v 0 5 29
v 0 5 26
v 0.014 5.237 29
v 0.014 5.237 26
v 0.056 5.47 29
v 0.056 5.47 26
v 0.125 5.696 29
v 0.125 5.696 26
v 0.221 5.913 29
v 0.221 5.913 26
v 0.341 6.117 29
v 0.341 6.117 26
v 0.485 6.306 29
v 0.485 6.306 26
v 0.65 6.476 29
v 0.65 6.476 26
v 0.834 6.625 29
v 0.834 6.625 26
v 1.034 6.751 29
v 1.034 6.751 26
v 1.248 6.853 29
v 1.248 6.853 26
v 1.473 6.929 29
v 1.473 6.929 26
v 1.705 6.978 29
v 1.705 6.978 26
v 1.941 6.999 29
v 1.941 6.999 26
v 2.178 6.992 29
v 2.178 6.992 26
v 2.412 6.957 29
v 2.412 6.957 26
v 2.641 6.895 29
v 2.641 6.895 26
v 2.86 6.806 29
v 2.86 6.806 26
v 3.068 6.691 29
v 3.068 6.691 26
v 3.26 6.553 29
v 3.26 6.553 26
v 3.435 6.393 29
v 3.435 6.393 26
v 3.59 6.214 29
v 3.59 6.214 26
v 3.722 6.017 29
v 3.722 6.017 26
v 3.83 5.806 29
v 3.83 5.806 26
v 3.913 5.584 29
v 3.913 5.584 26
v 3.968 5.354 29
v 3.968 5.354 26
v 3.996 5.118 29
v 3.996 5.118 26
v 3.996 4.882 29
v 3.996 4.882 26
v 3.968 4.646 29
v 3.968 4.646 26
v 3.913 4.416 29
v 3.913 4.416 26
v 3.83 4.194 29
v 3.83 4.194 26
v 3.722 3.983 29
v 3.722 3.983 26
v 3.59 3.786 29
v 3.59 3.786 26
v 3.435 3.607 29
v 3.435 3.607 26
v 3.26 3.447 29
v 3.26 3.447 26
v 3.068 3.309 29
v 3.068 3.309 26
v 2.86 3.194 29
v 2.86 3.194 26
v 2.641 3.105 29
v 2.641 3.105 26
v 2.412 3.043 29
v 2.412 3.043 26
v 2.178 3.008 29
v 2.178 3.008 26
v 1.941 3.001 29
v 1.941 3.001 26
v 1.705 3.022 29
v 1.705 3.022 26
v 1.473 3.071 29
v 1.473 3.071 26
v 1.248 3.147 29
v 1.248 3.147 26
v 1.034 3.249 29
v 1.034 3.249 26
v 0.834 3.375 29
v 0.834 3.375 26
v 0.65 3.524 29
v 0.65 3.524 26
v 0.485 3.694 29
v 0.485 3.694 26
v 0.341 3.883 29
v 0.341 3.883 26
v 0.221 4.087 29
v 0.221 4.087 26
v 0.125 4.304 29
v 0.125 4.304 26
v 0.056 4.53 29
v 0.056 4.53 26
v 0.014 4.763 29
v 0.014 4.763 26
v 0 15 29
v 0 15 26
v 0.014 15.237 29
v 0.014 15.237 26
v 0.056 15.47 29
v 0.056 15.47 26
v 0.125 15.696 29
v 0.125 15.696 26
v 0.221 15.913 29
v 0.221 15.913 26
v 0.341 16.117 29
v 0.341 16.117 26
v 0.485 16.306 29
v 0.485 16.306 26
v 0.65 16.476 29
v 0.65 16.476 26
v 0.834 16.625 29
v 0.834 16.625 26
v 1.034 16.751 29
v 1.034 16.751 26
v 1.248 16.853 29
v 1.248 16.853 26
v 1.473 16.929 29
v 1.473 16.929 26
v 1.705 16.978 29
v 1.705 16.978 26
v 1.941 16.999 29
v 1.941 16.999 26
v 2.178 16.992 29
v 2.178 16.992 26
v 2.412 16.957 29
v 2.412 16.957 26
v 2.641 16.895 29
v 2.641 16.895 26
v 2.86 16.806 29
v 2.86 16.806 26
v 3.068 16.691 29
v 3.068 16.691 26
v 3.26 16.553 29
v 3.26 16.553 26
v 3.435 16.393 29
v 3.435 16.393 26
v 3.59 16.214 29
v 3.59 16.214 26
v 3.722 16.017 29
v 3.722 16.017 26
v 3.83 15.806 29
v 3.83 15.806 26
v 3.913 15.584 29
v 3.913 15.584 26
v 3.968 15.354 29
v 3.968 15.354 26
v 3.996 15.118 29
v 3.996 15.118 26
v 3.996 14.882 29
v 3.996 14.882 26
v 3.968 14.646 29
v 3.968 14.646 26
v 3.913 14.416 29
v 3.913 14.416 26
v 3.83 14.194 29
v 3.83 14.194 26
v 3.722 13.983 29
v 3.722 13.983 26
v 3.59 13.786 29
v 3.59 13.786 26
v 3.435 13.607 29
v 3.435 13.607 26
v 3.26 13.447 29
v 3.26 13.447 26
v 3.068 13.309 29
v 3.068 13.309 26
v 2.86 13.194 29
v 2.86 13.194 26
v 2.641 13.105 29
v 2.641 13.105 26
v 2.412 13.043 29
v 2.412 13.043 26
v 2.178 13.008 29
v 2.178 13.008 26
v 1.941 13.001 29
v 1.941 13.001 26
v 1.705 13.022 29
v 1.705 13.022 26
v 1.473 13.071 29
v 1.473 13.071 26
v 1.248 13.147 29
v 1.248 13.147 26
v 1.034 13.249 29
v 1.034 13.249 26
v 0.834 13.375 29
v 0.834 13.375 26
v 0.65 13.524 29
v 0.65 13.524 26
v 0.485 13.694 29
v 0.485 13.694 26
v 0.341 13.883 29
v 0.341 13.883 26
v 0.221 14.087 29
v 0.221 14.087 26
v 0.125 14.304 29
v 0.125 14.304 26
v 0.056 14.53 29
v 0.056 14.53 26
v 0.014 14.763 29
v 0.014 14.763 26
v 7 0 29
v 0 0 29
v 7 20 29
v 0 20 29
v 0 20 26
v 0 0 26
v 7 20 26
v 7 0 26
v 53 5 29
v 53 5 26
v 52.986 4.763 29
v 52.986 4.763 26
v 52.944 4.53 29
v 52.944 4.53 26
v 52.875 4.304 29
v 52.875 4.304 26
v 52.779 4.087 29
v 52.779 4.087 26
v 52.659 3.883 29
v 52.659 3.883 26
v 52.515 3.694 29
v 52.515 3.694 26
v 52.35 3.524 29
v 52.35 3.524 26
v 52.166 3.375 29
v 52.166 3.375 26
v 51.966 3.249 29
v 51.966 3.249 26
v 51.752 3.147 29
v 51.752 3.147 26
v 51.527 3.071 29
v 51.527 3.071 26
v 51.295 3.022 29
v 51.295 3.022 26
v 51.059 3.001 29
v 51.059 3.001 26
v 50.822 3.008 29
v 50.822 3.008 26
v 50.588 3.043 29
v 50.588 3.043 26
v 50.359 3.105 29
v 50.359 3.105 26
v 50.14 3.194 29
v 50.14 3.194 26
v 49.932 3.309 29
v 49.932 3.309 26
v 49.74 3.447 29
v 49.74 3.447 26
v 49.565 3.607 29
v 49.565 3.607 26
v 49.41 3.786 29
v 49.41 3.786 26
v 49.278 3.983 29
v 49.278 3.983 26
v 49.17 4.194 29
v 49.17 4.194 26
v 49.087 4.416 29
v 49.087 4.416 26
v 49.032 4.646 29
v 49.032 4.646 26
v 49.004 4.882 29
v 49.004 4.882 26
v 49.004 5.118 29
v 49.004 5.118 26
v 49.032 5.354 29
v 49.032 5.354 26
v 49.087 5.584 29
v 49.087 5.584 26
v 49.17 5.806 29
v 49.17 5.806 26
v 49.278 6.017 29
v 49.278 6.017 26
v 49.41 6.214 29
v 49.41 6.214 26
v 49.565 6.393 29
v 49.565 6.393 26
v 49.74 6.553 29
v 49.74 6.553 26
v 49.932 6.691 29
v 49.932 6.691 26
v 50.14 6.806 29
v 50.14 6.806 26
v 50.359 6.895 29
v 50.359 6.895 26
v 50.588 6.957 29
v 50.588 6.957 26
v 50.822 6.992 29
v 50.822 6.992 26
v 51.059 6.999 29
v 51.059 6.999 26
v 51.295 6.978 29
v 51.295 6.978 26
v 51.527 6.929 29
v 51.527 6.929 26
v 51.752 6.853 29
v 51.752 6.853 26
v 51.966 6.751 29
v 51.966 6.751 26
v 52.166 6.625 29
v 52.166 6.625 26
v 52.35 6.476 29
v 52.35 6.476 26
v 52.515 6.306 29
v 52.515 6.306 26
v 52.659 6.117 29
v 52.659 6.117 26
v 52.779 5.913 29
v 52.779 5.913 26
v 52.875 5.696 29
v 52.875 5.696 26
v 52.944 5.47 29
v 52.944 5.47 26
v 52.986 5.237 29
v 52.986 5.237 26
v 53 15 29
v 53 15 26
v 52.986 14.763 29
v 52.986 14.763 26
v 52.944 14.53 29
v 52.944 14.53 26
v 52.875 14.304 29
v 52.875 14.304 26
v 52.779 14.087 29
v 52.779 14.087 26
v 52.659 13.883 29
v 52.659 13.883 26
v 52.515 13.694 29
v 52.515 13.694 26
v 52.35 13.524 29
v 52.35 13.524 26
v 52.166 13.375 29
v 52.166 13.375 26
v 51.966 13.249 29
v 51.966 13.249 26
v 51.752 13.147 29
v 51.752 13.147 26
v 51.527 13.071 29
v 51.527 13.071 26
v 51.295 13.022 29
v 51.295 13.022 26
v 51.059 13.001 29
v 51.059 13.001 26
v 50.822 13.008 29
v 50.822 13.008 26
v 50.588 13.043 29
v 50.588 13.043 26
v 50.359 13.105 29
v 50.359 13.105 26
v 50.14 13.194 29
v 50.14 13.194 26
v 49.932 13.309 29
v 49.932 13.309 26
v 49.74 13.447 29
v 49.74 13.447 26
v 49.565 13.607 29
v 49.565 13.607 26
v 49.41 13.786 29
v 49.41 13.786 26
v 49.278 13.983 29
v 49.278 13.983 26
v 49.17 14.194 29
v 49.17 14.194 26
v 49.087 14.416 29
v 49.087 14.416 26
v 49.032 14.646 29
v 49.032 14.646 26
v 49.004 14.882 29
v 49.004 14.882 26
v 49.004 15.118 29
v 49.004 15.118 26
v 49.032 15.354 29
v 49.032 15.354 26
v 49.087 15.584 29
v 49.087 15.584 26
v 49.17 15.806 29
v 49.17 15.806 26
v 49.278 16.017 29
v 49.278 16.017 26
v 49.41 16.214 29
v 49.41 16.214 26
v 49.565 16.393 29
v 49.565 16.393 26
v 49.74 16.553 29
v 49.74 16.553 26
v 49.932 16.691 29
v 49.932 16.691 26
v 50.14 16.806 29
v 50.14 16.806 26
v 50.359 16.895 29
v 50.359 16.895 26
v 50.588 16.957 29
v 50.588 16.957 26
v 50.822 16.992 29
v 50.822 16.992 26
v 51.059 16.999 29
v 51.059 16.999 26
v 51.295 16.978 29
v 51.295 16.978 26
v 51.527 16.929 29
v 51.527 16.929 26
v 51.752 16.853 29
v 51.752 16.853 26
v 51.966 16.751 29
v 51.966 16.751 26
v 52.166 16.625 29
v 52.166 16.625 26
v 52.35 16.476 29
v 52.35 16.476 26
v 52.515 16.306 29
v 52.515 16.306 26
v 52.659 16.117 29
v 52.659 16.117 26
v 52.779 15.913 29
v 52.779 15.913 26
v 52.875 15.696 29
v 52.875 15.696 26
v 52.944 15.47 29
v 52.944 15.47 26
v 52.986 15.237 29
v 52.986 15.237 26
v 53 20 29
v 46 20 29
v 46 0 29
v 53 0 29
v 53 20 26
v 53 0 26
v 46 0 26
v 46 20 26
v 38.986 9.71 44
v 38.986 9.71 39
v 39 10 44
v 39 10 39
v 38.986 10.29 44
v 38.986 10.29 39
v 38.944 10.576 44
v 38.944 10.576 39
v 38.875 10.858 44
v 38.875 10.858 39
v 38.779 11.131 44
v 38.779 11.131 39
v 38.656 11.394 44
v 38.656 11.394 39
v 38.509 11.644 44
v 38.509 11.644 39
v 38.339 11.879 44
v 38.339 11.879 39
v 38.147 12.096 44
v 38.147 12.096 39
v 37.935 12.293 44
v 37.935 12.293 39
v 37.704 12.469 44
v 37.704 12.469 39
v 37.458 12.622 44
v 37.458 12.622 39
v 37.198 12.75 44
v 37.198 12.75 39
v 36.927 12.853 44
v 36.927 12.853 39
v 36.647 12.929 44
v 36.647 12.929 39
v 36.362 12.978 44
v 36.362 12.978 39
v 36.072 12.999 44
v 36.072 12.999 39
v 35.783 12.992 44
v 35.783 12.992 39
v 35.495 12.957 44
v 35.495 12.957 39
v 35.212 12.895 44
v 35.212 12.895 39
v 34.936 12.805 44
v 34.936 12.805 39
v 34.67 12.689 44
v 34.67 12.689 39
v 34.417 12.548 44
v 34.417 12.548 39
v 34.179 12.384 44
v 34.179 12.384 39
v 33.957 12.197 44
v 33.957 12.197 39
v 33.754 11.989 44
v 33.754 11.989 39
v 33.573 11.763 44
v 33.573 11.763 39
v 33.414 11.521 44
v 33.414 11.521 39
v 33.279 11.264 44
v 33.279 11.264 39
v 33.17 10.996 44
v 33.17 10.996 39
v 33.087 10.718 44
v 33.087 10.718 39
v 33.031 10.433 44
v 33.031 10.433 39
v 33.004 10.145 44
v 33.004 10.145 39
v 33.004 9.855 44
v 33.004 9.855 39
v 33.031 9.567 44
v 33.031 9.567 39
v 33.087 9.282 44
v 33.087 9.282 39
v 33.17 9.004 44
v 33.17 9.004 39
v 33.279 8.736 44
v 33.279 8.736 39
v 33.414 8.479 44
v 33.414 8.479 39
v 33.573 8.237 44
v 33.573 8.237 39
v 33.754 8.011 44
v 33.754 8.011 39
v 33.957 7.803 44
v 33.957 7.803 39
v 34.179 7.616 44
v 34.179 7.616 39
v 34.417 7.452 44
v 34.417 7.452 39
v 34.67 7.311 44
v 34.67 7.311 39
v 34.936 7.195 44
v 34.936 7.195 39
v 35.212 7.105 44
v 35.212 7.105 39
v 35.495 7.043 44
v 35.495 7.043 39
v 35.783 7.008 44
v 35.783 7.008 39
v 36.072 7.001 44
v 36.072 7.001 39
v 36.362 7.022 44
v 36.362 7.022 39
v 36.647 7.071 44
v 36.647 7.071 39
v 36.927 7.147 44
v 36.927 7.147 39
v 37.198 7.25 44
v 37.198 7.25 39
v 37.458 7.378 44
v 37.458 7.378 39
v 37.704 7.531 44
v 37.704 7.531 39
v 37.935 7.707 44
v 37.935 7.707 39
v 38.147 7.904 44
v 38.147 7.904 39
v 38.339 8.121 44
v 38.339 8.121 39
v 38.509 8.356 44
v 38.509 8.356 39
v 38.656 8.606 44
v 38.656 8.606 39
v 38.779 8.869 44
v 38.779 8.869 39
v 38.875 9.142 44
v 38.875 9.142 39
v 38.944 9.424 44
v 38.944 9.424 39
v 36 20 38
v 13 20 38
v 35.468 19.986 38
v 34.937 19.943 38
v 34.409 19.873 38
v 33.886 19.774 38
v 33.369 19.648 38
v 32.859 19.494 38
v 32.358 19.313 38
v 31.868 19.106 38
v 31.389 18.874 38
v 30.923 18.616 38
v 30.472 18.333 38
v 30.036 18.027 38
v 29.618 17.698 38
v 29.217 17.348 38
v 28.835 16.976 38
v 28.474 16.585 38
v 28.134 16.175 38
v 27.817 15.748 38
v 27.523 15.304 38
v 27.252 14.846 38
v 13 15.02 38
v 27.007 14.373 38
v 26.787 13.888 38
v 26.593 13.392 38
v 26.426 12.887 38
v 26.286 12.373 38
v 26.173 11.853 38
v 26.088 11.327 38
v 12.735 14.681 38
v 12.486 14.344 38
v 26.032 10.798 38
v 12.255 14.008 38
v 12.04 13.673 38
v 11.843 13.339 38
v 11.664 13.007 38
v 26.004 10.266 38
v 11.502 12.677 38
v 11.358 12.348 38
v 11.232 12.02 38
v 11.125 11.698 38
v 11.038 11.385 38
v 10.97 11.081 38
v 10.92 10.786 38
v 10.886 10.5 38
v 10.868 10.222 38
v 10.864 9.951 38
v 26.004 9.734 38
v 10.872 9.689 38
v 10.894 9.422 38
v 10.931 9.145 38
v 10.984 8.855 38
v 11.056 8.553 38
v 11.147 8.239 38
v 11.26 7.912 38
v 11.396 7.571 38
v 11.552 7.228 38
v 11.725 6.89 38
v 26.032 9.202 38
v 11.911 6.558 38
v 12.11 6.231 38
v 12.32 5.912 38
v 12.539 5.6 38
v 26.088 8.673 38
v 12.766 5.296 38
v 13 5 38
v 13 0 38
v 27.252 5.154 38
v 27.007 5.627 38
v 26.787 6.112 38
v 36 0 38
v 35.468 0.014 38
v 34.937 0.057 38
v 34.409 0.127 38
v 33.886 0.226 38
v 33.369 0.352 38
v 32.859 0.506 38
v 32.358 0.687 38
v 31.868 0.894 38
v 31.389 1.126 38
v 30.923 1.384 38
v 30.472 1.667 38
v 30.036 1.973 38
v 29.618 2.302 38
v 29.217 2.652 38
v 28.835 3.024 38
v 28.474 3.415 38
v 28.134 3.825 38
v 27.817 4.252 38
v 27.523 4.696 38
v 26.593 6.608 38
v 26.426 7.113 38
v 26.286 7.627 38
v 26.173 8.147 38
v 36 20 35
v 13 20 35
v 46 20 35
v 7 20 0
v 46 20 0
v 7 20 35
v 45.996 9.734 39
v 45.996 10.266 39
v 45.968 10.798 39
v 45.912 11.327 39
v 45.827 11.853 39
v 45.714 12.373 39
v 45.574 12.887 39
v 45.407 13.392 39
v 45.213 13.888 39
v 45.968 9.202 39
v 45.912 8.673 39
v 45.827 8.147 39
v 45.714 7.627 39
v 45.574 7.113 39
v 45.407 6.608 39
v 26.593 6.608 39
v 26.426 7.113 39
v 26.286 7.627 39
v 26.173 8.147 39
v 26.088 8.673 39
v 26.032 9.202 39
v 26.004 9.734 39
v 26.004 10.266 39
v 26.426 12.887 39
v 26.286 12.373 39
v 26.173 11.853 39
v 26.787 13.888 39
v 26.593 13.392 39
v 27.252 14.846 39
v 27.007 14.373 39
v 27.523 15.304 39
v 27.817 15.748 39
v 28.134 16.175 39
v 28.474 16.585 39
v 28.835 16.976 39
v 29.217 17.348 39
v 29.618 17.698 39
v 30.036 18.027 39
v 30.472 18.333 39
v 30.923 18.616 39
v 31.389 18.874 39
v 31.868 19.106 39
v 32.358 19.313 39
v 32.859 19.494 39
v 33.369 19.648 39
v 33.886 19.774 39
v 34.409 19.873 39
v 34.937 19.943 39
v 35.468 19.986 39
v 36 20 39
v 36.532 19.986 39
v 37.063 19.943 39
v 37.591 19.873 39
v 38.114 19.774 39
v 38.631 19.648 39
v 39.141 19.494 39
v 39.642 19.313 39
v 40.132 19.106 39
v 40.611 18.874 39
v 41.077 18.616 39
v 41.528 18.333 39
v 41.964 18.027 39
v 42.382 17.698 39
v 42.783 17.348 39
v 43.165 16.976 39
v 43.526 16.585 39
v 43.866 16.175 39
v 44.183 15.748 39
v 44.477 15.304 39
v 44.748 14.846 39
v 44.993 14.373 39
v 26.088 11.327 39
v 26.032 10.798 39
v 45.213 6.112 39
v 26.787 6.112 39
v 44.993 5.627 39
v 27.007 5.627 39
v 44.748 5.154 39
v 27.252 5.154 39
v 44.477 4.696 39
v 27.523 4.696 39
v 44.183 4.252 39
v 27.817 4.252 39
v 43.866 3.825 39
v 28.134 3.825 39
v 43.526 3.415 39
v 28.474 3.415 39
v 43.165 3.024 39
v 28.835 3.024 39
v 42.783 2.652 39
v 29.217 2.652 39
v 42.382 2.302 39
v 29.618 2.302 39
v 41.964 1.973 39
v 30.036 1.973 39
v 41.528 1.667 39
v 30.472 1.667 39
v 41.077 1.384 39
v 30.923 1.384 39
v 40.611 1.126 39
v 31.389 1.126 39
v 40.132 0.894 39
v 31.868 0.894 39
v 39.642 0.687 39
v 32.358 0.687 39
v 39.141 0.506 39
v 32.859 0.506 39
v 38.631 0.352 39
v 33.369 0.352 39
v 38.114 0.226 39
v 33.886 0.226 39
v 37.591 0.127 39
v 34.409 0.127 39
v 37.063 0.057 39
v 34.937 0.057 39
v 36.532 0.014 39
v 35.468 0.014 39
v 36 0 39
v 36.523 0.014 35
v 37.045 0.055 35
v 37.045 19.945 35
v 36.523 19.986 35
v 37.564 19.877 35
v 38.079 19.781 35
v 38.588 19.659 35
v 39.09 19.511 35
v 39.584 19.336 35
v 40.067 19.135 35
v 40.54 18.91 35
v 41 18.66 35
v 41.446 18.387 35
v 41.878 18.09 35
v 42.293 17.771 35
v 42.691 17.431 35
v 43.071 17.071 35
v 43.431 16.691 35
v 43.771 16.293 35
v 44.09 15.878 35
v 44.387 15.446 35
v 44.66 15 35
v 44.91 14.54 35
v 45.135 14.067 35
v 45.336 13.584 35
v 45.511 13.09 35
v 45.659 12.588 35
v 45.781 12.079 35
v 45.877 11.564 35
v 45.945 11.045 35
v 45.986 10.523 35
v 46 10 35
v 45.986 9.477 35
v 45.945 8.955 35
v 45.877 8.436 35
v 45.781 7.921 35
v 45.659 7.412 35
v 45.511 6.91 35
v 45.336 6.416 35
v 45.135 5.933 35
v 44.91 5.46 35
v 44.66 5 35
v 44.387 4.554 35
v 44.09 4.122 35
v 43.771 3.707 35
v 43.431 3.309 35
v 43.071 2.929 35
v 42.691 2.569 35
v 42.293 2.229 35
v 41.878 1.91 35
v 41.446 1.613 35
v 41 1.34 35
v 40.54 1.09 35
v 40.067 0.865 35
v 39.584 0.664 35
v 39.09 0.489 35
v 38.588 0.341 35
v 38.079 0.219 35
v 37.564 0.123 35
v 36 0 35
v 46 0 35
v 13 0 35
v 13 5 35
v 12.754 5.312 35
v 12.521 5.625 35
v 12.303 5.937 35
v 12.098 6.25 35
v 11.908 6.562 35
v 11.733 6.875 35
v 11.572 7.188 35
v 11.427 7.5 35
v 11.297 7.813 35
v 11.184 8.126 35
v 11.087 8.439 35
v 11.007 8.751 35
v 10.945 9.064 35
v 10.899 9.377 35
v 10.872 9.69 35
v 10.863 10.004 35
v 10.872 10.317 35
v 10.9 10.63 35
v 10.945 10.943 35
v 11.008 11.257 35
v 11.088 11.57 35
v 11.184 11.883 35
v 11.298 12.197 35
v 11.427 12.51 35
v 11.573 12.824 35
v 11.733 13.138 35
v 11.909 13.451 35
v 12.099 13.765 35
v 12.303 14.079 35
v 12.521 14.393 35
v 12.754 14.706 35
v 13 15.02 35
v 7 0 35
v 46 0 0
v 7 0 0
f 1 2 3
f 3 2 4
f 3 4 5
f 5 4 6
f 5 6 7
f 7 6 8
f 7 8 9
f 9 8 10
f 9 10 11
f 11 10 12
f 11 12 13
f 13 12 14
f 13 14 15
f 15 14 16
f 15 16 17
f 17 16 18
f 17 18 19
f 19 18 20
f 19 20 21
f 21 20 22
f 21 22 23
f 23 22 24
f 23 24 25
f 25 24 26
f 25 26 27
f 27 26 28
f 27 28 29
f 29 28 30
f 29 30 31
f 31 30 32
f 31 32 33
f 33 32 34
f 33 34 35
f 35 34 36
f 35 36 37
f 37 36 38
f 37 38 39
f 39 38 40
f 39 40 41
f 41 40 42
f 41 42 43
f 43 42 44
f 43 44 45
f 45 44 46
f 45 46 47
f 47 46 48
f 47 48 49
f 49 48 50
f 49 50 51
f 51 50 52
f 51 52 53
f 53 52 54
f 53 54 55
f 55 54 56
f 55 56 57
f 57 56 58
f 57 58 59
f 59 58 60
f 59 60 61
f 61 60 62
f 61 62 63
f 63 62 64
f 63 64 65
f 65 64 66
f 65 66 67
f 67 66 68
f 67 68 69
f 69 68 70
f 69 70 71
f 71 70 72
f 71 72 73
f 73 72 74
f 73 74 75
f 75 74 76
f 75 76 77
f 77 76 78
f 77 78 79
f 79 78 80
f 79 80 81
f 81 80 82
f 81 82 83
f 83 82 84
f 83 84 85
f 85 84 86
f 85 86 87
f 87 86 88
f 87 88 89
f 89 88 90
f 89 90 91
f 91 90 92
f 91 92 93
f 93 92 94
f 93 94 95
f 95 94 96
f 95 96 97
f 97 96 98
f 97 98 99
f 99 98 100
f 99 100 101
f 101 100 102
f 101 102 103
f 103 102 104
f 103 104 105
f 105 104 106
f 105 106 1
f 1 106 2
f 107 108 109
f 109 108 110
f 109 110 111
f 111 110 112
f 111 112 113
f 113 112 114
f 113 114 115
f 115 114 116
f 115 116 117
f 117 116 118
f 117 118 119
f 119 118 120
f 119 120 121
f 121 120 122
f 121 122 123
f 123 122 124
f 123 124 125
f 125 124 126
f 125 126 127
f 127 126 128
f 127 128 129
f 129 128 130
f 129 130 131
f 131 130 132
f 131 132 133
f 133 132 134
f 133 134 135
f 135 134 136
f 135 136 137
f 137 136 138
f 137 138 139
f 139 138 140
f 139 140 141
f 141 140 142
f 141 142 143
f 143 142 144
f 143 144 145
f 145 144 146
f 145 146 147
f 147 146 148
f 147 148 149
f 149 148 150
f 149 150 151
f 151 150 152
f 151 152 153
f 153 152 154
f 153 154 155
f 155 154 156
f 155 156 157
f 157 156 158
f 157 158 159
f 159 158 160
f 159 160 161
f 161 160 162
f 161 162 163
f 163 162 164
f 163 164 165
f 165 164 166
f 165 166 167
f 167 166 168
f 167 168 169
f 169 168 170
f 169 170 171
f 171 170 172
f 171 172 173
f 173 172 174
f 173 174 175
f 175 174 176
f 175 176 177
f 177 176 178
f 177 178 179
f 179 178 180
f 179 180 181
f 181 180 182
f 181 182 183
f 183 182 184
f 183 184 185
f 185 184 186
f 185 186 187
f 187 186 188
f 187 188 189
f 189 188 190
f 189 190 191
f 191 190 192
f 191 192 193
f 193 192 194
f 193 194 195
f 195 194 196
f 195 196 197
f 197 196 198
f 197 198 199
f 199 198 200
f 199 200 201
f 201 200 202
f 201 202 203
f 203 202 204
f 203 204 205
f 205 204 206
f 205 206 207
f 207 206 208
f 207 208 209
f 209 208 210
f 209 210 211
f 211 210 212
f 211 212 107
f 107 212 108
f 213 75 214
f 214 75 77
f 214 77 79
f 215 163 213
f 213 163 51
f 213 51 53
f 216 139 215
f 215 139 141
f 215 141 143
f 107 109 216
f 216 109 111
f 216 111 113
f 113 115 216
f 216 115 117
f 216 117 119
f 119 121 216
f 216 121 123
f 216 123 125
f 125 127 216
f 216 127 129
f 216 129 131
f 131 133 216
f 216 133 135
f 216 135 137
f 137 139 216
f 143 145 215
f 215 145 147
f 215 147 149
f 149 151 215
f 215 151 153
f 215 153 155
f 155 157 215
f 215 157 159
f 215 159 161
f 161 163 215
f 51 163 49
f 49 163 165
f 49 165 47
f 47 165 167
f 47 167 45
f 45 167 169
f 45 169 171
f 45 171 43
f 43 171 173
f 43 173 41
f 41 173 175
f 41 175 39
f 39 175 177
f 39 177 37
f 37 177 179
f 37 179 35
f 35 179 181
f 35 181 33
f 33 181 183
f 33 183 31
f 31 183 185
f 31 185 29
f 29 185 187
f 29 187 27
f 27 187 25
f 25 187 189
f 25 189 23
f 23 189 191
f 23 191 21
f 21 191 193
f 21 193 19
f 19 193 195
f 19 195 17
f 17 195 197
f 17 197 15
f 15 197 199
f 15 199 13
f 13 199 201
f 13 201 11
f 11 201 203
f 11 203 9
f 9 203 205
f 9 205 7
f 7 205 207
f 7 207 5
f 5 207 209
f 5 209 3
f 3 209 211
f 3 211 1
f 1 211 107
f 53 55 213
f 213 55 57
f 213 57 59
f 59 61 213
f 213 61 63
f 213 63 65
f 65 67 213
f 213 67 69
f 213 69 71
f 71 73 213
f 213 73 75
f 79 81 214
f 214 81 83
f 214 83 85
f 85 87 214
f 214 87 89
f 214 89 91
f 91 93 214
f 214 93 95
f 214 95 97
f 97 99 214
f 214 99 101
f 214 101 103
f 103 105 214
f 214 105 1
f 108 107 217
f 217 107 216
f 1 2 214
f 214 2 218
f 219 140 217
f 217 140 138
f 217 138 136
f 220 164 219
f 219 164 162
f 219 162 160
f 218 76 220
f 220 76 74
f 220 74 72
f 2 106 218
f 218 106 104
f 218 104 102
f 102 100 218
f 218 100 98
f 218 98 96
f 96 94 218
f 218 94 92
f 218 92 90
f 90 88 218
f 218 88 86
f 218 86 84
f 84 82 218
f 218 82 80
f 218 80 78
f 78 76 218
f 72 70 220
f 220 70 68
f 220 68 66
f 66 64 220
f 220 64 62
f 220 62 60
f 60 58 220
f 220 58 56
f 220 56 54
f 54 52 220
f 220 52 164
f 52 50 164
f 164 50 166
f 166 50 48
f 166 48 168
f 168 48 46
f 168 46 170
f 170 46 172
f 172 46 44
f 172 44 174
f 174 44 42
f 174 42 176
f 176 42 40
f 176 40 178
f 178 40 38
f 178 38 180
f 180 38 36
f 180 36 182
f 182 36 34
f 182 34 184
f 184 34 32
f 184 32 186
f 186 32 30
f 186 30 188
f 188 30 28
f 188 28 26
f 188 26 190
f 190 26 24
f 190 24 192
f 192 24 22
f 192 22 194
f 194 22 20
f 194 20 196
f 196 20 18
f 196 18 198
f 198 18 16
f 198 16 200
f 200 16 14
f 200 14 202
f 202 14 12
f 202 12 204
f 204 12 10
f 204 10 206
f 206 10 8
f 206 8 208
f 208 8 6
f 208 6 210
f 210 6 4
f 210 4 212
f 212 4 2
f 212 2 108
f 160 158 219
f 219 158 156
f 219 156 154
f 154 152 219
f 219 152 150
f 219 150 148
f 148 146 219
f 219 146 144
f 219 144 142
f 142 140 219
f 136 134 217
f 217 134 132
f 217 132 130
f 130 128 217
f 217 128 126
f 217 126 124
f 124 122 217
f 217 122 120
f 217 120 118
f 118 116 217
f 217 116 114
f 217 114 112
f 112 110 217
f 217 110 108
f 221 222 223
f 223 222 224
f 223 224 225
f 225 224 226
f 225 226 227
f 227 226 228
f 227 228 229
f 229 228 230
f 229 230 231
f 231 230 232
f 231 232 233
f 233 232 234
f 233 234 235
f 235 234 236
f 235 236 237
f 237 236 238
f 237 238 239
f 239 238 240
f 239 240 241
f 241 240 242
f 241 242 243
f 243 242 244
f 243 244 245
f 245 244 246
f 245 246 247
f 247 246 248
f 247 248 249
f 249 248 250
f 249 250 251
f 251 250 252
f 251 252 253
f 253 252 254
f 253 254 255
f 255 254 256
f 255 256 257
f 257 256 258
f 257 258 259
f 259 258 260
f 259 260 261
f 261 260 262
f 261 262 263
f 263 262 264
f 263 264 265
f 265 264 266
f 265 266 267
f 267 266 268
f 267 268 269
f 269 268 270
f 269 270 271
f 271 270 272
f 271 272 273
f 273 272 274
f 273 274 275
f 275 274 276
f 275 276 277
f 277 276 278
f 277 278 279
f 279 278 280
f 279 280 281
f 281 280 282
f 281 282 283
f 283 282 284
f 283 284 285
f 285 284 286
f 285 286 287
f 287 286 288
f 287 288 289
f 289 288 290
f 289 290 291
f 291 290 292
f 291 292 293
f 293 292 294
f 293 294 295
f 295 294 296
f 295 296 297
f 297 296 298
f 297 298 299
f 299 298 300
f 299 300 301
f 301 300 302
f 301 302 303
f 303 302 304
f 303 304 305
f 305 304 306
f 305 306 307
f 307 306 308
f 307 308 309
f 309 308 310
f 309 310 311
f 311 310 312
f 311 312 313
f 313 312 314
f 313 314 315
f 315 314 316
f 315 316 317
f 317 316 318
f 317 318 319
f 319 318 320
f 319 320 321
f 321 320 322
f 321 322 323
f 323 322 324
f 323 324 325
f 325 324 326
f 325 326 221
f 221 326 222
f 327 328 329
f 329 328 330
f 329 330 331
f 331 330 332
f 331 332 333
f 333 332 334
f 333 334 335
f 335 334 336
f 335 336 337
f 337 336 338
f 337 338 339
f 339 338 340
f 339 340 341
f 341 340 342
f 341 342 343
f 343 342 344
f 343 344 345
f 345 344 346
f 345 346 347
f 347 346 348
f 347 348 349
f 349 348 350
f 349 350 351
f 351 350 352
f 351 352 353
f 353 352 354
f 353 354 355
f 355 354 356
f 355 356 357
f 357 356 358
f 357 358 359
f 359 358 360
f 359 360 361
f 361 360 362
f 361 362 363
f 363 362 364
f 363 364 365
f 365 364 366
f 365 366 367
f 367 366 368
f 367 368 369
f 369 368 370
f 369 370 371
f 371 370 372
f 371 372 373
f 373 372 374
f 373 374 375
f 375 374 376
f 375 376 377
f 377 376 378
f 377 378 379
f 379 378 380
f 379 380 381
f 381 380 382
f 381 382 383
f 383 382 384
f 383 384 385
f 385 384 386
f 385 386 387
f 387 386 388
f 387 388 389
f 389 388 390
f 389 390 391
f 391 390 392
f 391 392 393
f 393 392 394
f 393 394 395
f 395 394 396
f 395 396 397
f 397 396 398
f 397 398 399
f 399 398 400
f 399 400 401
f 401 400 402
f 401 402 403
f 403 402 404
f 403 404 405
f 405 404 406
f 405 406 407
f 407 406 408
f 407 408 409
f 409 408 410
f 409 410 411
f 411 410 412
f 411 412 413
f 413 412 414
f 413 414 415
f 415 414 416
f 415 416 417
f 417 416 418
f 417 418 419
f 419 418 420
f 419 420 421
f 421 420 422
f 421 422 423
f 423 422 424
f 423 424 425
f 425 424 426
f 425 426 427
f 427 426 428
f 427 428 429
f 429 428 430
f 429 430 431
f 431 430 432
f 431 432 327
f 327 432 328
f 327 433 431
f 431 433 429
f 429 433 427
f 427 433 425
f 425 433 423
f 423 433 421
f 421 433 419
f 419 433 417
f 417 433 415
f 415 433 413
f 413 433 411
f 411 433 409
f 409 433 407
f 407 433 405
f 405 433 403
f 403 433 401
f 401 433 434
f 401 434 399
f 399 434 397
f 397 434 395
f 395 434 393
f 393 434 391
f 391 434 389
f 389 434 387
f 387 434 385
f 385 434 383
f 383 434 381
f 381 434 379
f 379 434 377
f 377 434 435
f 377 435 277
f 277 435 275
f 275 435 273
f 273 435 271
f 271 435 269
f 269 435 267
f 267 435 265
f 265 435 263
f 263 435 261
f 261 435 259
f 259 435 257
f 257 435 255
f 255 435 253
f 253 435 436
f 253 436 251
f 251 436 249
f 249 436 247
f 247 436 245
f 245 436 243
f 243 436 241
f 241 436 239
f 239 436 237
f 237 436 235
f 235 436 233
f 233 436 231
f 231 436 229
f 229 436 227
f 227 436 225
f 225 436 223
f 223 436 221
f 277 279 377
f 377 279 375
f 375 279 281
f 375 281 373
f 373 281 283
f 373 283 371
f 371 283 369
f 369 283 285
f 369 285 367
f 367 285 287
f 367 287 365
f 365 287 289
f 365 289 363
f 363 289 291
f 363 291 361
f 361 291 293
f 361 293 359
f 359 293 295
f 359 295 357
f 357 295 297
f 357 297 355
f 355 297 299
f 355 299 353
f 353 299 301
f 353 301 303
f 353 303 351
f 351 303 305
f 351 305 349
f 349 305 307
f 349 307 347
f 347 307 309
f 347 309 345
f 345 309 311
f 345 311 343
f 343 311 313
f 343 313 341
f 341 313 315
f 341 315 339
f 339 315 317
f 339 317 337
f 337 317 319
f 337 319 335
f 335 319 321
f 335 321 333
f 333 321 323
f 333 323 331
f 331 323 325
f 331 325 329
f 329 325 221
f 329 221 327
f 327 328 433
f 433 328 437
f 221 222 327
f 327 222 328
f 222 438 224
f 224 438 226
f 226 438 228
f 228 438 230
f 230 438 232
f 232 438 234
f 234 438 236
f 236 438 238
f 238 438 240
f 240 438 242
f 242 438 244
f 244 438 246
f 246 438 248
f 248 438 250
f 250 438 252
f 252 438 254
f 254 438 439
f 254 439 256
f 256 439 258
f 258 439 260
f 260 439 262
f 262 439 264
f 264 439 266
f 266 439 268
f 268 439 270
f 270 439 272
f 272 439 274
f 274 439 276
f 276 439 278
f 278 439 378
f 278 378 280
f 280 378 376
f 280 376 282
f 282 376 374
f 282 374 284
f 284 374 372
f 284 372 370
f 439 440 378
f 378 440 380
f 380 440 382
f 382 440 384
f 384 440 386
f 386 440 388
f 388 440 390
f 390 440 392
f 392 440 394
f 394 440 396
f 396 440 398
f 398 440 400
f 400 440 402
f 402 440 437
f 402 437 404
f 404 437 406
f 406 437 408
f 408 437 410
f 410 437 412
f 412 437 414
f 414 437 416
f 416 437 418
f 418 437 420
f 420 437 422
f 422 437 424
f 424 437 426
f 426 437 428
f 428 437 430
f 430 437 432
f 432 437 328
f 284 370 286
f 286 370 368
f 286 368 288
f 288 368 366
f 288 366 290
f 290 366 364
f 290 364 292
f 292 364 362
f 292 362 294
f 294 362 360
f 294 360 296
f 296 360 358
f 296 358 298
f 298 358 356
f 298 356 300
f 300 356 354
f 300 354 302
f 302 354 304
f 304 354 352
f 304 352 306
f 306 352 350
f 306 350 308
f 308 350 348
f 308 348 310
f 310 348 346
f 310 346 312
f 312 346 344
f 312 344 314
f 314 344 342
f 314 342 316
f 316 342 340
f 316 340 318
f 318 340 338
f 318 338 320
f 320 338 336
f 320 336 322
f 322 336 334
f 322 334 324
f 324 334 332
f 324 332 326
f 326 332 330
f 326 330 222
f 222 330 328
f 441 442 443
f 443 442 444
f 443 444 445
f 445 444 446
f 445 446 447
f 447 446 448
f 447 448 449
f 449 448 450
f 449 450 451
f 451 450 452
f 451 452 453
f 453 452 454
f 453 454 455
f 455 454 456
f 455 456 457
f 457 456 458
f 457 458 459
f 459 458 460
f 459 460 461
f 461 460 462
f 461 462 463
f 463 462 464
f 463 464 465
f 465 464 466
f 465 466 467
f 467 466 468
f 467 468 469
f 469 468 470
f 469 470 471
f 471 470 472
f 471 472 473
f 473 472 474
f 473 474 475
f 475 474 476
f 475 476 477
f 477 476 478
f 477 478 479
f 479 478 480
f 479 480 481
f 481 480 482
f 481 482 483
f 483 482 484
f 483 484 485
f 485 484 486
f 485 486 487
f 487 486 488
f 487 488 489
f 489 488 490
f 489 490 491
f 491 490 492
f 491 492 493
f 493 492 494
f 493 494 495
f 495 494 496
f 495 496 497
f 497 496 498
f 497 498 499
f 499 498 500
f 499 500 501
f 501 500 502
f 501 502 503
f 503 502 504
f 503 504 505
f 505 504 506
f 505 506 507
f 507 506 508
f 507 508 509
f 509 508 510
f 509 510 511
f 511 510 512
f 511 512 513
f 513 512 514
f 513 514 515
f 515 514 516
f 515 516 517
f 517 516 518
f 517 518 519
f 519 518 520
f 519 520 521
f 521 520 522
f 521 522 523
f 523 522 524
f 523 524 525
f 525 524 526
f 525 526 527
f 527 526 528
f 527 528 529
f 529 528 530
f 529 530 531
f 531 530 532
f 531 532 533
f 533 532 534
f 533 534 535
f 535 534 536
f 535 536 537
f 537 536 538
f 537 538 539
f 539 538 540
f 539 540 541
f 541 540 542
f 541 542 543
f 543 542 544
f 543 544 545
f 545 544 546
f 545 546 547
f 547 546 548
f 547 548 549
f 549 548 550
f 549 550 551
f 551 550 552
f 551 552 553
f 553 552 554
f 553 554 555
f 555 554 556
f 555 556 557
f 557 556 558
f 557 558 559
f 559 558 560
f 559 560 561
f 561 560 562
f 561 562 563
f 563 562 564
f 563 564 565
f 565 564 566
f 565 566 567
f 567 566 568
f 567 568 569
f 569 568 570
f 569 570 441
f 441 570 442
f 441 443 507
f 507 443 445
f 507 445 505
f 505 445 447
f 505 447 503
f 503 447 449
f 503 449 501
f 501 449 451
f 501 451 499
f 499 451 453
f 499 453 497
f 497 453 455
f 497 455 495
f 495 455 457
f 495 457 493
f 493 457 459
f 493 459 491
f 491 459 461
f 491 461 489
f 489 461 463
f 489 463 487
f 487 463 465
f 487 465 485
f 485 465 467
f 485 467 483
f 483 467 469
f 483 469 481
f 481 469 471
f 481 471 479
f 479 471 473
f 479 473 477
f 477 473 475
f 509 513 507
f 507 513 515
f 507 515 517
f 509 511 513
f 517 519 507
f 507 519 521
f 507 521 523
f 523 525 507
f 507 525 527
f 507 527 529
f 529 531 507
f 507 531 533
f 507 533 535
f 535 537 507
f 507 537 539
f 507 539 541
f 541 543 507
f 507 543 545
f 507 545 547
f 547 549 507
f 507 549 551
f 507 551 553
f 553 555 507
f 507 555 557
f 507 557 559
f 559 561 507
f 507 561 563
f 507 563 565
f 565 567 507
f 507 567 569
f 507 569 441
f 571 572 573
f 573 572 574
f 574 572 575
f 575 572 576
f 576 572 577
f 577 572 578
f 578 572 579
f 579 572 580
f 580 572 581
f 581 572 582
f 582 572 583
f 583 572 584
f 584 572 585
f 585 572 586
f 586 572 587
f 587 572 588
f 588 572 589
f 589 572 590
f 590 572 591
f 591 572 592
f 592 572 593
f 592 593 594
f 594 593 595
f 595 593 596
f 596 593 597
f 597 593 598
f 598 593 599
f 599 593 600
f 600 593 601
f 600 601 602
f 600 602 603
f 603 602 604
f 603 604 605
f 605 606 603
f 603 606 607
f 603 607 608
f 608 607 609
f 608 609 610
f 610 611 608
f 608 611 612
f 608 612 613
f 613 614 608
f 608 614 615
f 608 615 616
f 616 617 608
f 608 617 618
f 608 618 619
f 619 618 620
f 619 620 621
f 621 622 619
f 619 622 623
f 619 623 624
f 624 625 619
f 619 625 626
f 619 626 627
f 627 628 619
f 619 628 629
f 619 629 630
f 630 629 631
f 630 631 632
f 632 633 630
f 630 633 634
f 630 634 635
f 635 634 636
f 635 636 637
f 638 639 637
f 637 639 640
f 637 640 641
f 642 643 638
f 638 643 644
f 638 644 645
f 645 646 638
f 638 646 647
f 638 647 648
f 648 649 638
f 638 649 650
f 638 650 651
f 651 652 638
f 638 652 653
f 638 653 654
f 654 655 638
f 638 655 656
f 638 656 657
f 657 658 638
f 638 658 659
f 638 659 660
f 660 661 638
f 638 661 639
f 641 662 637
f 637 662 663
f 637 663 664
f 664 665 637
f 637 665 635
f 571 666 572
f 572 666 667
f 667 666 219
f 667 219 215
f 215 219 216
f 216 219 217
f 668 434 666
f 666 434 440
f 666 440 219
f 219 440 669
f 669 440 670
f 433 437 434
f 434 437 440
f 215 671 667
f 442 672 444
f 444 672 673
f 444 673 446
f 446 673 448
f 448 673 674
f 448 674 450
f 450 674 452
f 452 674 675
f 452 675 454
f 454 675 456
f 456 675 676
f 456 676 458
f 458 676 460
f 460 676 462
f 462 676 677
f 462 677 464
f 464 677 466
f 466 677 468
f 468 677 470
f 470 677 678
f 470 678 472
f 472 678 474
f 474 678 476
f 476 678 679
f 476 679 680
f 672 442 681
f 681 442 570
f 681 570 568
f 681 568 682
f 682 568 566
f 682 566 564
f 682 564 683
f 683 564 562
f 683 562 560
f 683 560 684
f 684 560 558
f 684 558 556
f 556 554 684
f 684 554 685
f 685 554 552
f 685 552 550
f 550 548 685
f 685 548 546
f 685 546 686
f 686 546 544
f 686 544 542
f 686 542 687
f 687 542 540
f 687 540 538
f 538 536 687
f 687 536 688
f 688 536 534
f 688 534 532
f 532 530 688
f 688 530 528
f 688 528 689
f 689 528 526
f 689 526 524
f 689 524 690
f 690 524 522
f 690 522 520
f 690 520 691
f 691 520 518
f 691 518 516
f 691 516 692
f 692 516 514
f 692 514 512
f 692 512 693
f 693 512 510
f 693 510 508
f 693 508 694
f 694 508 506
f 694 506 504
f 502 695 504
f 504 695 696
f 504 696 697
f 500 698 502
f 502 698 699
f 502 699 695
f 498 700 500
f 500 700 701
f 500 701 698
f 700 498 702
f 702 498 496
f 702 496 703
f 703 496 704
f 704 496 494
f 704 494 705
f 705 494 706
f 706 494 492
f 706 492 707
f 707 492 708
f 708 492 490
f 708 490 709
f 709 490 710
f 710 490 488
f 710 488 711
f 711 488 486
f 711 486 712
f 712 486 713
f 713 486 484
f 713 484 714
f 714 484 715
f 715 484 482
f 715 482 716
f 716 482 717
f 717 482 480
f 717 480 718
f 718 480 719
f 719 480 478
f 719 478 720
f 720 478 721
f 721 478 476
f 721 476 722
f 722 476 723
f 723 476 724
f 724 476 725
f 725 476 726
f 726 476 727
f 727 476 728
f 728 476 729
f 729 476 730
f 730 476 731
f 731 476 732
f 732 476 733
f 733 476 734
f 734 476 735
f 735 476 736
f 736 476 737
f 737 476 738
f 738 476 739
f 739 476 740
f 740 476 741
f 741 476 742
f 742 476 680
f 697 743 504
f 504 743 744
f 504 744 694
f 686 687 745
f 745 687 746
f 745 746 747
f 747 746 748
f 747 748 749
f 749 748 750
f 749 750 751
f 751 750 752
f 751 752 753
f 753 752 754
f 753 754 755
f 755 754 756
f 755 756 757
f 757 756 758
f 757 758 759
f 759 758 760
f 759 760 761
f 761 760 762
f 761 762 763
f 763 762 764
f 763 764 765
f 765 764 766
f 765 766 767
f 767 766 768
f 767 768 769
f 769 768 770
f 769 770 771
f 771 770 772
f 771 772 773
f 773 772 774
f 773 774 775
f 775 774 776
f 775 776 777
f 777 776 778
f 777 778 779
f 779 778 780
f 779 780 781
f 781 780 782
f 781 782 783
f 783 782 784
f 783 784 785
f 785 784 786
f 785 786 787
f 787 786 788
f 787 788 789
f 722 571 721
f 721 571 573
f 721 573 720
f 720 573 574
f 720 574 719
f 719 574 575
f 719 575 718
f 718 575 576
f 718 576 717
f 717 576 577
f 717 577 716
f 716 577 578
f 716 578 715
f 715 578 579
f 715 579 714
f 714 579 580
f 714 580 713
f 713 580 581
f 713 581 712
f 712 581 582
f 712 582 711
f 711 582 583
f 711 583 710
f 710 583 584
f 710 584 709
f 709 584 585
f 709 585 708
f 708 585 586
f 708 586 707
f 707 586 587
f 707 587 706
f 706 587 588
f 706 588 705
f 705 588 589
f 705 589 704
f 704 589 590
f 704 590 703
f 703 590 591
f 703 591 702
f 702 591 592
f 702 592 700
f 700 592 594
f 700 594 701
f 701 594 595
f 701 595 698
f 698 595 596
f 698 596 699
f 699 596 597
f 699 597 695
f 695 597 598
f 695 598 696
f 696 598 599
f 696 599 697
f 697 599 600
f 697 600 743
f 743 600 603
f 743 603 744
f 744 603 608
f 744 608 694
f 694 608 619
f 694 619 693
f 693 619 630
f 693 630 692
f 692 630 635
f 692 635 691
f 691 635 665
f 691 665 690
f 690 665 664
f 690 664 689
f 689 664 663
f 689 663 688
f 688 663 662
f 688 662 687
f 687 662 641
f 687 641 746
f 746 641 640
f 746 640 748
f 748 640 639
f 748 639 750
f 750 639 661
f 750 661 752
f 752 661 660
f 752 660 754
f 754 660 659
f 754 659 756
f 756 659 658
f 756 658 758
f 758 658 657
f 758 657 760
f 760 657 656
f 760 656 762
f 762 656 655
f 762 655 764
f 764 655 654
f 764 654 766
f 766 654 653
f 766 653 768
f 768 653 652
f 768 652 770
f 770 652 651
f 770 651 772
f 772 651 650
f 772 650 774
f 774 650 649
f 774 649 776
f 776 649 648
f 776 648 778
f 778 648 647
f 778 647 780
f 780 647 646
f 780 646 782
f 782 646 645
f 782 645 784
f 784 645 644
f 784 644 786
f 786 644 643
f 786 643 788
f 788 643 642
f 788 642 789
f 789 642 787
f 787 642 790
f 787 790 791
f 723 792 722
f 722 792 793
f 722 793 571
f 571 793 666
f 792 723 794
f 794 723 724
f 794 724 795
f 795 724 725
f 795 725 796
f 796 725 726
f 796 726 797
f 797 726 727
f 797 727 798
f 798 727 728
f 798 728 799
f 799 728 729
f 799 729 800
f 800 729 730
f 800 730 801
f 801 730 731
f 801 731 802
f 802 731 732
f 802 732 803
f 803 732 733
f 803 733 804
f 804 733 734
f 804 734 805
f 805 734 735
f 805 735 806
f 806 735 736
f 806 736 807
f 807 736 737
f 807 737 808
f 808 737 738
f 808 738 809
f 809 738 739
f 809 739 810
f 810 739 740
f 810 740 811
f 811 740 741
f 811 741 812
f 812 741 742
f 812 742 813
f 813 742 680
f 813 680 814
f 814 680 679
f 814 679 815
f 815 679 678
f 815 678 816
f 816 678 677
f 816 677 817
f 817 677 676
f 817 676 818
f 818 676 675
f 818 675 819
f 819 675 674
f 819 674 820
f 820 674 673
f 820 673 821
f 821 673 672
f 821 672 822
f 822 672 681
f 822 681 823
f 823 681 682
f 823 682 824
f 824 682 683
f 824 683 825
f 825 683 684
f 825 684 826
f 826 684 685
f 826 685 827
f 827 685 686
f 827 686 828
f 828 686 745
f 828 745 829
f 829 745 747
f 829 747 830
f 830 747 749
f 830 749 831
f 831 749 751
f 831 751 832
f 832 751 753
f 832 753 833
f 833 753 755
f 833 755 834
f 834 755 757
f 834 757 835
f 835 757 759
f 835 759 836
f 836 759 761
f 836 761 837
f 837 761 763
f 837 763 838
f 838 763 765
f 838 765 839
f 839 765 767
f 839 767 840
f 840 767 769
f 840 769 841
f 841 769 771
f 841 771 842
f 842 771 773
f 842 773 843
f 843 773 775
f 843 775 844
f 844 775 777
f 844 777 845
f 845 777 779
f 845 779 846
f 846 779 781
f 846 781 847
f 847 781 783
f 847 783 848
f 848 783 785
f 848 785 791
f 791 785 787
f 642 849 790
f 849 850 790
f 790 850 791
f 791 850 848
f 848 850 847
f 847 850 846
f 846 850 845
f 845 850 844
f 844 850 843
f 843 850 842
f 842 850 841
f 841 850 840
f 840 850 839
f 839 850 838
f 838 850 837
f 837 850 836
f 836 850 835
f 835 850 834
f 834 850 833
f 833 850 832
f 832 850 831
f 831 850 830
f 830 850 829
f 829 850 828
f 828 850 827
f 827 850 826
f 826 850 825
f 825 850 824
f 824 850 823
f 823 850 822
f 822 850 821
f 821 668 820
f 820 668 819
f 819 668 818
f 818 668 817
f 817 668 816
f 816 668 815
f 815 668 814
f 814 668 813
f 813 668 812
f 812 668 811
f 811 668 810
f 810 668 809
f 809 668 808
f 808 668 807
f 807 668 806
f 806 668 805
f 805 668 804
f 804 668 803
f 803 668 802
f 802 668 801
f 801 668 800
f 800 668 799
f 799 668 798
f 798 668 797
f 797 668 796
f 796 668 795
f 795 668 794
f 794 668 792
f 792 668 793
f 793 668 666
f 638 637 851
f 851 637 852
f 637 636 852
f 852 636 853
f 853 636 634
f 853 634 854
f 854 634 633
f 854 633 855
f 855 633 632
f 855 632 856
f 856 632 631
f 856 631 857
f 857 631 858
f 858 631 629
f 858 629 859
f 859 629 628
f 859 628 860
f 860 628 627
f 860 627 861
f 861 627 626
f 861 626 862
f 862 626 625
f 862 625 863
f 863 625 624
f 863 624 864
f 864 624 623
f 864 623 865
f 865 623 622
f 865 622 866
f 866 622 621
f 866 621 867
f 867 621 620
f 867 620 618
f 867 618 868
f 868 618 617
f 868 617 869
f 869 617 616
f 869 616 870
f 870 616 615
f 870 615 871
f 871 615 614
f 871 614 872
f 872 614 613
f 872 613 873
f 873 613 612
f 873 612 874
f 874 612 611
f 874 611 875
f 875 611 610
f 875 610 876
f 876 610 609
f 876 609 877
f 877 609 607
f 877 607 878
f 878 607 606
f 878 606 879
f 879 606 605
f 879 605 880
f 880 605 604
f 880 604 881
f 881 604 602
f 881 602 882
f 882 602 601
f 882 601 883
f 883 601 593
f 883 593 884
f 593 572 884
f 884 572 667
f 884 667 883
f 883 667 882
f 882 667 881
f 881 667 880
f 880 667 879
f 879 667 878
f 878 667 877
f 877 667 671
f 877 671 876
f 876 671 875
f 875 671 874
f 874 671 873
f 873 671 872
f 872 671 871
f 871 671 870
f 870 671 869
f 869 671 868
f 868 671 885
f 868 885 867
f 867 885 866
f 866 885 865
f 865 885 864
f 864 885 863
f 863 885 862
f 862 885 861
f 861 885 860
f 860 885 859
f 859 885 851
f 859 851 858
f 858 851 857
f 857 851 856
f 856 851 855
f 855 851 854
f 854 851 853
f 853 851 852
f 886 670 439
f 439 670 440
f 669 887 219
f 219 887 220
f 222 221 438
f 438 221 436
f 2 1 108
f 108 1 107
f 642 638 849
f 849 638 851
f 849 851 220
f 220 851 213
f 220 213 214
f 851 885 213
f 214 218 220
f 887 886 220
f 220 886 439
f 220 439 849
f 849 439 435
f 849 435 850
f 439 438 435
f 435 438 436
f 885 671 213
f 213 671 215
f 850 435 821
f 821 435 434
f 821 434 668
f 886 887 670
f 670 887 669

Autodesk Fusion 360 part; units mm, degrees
sketch "Sketch1" plane through (0, 0, 0) normal (0, 1, 0) x (1, 0, 0)
  line L0 (0, 0) -> (53, 0)
  line L1 (53, 0) -> (53, -39)
  line L2 (53, -39) -> (0, -39)
  line L3 (0, -39) -> (0, 0)
  dimension "d1" = 53
  dimension "d2" = 39
extrude "Extrude1" add sketch "Sketch1" along normal blind 20
sketch "Sketch2" plane through (0, 0, 39) normal (0, 0, 1) x (-1, 0, 0)
  line L0 (0, 0) -> (-53, 0)
  line L1 (-53, 0) -> (-53, -20)
  line L2 (-53, -20) -> (0, -20)
  line L3 (0, -20) -> (0, 0)
  line L4 (0, -20) -> (-7, -20)
  line L5 (-7, -20) -> (-7, 0)
  line L6 (-7, 0) -> (0, 0)
  line L7 (0, 0) -> (0, -20)
  line L8 (-53, -20) -> (-46, -20)
  line L9 (-46, -20) -> (-46, 0)
  line L10 (-46, 0) -> (-53, 0)
  line L11 (-53, 0) -> (-53, -20)
  dimension "d5" = 7
  dimension "d6" = 7
extrude "Extrude2" cut sketch "Sketch2" against normal blind 10 contours L0 L2 L3 L4 L5 L6 L7 | L0 L1 L2 L8 L9 L10 L11
sketch "Sketch3" plane through (0, 0, 0) normal (0, 0, -1) x (1, 0, 0)
  line L0 (53, 0) -> (0, 0)
  line L1 (0, 0) -> (0, -20)
  line L2 (0, -20) -> (53, -20)
  line L3 (53, -20) -> (53, 0)
  line L4 (0, 0) -> (7, 0)
  line L5 (7, 0) -> (7, -20)
  line L6 (7, -20) -> (0, -20)
  line L7 (0, -20) -> (0, 0)
  line L8 (53, 0) -> (46, 0)
  line L9 (46, 0) -> (46, -20)
  line L10 (46, -20) -> (53, -20)
  line L11 (53, -20) -> (53, 0)
  dimension "d9" = 7
  dimension "d10" = 7
extrude "Extrude3" cut sketch "Sketch3" against normal blind 26 contours L0 L2 L3 L8 L9 L10 L11 | L0 L1 L2 L4 L5 L6 L7
sketch "Sketch4" plane through (0, 0, 39) normal (0, 0, 1) x (-1, 0, 0)
  line L0 (-7, -20) -> (-7, 0)
  line L1 (-7, 0) -> (-46, 0)
  line L2 (-46, 0) -> (-46, -20)
  line L3 (-46, -20) -> (-7, -20)
  line L4 (-7, -20) -> (-13, -20)
  line L5 (-13, -20) -> (-13, 0)
  line L6 (-13, 0) -> (-7, 0)
  line L7 (-7, 0) -> (-7, -20)
  circle A0 centre (-36, -10) radius 10
  circle A1 centre (-36, -10) radius 6.5
  circle A2 centre (-36, -10) radius 3
  spline S0 degree 5 poles (-13, -15.0203) (-12.838, -14.8194) (-12.5281, -14.4176) (-12.1057, -13.8151) (-11.6287, -13.012) (-11.1861, -12.0086) (-10.9107, -11.0057) (-10.8163, -10.0034) (-10.9104, -9.0017) (-11.1856, -8.0005) (-11.6282, -6.9998) (-12.1053, -6.1997) (-12.5279, -5.5998) (-12.8379, -5.1999) (-13, -5) knots 0 0 0 0 0 0 0.1 0.2 0.3 0.4 0.5 0.6 0.7 0.8 0.9 1 1 1 1 1 1
  point P0 (-13, -10)
  point P1 (-13, -15.0203)
  point P2 (-13, -5)
  point P3 (-10.8633, -10)
  dimension "d13" = 6
  dimension "d14" = 20
  dimension "d15" = 13
  dimension "d16" = 6
extrude "Extrude4" cut sketch "Sketch4" against normal blind 4 contours L0 L1 L3 L4 L5 L6 L7 S0 | L2 L3 A0 | L1 L2 A0
extrude "Extrude5" cut sketch "Sketch4" against normal blind 1 contours L1 L3 L5 A0 | L2 L3 A0 | L5 S0 | L1 L2 A0
extrude "Extrude6" add sketch "Sketch4" along normal blind 5 contours A2
sketch "Sketch5" plane through (0, 0, 29) normal (0, 0, 1) x (-1, 0, 0)
  line L0 (-53, 0) -> (-53, -20)
  line L1 (-53, -20) -> (-46, -20)
  line L2 (-46, -20) -> (-46, 0)
  line L3 (-46, 0) -> (-53, 0)
  line L4 (-53, 0) -> (-51, 0)
  line L5 (-51, 0) -> (-51, -5)
  line L6 (-51, -5) -> (-53, -5)
  line L7 (-53, -5) -> (-53, 0)
  circle A0 centre (-51, -5) radius 2
  line L8 (-53, -20) -> (-51, -20)
  line L9 (-51, -20) -> (-51, -15)
  line L10 (-51, -15) -> (-53, -15)
  line L11 (-53, -15) -> (-53, -20)
  circle A1 centre (-51, -15) radius 2
  dimension "d23" = 2
  dimension "d24" = 5
  dimension "d25" = 4
  dimension "d26" = 2
  dimension "d27" = 5
  dimension "d28" = 4
extrude "Extrude7" cut sketch "Sketch5" against normal blind 3 contours L5 L6 A0 | L5 L6 A0 | L9 L10 A1 | L9 L10 A1
ref_plane "WorkPlane1" through (26.5, 0, 0) normal (1, 0, 0) x (0, 1, 0)
mirror "Mirror1" about plane through (26.5, 0, 0) normal (1, 0, 0) of "Extrude7"
